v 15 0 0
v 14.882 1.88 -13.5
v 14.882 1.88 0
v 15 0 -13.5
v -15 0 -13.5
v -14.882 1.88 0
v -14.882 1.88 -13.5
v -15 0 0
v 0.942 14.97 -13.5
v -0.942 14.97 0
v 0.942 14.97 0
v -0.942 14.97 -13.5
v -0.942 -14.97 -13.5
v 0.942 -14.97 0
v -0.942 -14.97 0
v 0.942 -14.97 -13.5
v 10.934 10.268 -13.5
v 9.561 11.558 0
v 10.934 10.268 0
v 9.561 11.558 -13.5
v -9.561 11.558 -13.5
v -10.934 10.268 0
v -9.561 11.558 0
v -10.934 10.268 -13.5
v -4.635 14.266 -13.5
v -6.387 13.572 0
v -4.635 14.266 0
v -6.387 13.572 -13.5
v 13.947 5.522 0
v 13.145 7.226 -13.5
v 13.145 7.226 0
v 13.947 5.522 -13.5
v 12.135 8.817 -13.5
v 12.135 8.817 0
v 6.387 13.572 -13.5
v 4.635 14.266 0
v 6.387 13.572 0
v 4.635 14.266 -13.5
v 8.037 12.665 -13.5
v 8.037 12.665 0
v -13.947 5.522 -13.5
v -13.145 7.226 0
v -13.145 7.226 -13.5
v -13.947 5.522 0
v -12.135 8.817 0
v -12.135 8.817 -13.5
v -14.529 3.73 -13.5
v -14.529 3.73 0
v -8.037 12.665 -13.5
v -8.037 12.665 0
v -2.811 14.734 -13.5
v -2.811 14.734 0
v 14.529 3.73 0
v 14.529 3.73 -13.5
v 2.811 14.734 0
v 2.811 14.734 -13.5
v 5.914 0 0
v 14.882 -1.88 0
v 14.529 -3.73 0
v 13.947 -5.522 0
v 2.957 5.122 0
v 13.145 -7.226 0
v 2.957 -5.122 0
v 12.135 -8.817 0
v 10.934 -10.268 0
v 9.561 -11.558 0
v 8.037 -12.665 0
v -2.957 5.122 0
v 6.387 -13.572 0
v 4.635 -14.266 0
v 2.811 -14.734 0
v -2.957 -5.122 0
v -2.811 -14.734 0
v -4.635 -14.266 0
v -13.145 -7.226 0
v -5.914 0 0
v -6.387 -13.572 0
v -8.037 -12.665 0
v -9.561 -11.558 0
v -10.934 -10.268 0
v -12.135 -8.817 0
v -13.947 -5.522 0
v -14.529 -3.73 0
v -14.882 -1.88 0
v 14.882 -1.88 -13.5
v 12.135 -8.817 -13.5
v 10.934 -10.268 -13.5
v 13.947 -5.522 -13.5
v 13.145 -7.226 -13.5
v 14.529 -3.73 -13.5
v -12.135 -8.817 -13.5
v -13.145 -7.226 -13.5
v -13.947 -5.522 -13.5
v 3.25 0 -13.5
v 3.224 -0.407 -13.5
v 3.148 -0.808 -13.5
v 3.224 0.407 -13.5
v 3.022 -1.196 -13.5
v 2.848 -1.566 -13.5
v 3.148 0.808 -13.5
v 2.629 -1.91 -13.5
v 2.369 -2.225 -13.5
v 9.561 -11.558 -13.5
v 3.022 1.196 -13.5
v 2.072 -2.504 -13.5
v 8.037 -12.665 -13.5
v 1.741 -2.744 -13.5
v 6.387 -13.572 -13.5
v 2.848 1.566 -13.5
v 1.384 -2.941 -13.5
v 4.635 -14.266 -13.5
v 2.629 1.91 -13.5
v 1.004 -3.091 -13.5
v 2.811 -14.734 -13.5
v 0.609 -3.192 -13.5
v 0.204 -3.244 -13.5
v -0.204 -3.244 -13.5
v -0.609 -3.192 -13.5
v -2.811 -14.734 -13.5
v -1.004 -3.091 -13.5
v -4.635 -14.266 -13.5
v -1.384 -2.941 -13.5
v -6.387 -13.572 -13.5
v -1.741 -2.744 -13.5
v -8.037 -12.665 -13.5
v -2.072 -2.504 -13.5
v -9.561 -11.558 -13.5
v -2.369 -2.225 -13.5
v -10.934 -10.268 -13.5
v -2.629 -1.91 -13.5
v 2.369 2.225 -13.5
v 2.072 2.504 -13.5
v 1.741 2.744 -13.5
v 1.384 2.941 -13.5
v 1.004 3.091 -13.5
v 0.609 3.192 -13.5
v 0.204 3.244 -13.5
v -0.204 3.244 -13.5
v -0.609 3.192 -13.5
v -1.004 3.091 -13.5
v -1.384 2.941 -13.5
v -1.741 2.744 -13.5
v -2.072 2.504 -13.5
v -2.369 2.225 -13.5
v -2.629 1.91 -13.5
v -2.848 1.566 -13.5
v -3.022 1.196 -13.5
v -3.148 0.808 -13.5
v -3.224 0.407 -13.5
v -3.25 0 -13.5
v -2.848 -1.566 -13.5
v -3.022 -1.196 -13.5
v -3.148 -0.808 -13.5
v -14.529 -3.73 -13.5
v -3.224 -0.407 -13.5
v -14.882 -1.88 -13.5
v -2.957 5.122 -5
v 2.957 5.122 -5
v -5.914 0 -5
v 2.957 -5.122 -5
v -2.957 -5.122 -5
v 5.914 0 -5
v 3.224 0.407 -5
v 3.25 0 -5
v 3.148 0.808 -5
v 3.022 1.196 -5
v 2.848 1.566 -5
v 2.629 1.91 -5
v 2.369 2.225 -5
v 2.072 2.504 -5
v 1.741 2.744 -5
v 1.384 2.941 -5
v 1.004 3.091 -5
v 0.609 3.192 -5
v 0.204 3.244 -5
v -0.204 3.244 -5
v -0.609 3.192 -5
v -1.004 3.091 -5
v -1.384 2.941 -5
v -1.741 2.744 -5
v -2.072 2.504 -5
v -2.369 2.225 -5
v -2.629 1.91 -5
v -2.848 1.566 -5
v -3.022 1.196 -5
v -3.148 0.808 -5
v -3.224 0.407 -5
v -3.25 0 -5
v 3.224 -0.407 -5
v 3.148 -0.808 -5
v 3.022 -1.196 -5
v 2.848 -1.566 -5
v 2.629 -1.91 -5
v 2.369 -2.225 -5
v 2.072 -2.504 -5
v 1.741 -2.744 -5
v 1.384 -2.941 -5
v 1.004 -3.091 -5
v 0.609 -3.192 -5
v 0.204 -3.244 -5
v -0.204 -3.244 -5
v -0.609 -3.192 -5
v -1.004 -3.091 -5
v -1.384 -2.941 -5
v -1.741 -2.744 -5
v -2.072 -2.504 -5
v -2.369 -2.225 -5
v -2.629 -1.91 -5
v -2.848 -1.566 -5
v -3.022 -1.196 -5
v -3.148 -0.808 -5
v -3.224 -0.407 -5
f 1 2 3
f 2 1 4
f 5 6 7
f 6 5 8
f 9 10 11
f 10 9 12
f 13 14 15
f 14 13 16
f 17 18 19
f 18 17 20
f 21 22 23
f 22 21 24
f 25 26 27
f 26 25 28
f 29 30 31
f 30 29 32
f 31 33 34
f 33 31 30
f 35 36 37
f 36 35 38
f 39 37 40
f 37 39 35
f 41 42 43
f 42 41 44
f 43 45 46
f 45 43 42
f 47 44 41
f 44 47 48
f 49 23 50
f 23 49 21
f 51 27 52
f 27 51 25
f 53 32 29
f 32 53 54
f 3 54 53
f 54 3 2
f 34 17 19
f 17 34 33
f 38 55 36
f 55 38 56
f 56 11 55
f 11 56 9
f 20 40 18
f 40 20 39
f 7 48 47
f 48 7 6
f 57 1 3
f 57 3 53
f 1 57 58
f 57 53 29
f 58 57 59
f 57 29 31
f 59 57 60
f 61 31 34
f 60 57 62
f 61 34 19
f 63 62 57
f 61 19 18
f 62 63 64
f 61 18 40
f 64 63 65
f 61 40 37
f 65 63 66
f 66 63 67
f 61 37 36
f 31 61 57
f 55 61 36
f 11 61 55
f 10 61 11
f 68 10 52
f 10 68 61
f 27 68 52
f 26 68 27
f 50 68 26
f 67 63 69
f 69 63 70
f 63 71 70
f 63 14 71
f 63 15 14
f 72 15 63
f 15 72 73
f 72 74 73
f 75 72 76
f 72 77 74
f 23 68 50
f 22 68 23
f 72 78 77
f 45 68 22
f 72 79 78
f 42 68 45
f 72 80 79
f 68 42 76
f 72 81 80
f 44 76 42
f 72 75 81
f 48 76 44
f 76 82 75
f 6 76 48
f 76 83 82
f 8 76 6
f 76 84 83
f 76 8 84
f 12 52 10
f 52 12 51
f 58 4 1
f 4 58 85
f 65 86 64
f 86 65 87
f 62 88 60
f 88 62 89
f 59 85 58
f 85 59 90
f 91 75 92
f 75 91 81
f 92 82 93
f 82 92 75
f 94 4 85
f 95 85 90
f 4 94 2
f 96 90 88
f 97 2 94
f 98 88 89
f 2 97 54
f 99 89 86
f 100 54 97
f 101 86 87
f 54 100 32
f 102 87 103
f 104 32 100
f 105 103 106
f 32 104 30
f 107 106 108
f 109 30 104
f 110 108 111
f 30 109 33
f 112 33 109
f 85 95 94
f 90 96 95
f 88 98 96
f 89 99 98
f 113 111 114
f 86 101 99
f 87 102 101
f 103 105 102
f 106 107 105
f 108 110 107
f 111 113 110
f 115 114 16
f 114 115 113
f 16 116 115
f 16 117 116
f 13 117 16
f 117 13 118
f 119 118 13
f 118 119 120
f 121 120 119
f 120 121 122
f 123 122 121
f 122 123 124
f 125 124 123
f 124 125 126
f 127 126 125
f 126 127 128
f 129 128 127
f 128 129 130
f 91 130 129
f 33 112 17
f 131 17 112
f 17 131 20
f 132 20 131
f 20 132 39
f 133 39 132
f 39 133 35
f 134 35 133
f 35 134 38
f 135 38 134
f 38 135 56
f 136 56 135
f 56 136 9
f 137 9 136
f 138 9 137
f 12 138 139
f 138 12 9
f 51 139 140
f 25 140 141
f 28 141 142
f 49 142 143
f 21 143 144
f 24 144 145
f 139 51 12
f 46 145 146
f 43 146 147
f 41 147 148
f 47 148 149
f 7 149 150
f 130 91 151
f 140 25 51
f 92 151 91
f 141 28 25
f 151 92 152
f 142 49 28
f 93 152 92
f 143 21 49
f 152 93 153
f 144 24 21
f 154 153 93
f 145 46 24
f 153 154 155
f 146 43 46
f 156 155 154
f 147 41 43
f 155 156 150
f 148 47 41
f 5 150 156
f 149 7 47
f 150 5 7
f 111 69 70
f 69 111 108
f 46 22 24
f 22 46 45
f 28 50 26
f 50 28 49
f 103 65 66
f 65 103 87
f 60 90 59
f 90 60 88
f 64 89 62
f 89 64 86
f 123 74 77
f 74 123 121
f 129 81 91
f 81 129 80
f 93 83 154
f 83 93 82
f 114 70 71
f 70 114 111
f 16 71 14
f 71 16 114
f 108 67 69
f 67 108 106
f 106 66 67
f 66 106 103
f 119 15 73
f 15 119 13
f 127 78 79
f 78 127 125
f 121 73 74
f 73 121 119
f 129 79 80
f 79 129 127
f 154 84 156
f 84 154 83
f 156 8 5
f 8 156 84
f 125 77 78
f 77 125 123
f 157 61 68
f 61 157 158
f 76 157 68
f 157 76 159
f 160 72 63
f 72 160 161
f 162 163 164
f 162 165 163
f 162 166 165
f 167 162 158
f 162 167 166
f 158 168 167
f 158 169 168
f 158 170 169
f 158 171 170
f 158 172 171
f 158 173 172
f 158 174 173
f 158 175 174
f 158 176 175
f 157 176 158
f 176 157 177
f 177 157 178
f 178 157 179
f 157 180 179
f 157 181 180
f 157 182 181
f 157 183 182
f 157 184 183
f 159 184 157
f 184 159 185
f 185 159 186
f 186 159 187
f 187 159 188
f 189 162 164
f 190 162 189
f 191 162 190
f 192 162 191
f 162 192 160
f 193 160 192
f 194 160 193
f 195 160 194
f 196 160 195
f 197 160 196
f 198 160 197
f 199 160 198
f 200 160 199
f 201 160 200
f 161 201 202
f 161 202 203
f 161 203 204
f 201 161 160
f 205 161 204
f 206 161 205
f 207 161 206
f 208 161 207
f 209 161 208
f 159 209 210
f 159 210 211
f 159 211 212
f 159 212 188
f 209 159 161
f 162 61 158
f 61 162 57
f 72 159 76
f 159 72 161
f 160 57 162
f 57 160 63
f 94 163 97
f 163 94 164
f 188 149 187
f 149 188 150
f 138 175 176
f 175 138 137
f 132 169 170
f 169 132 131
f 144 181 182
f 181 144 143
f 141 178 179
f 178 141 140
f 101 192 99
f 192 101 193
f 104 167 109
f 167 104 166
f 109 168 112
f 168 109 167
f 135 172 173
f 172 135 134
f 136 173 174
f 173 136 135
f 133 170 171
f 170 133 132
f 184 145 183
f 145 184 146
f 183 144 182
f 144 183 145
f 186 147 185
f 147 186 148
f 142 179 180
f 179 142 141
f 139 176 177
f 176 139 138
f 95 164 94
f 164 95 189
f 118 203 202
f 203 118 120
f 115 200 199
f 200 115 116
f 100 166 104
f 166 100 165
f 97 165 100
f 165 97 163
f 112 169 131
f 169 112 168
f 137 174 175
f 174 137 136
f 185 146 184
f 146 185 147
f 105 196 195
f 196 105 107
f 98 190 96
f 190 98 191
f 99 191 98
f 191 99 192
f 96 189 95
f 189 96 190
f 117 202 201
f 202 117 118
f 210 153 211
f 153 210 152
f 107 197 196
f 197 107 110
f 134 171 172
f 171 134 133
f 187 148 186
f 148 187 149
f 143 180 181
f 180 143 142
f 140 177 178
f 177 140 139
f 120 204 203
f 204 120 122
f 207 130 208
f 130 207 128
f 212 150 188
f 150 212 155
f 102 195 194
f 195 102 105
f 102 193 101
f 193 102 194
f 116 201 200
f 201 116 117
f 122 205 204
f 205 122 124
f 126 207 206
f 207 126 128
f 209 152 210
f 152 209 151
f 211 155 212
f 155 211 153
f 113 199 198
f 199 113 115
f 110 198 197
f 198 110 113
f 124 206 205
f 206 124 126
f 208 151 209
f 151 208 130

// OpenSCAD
$fn = 50;


difference() {
	union() {
		translate(v = [0, 0, -13.5000000000]) {
			cylinder(h = 13.5000000000, r = 15.0000000000);
		}
		translate(v = [0, 0, -12.0000000000]) {
			cylinder(h = 12, r = 2.8750000000);
		}
	}
	union() {
		translate(v = [0, 0, 0]) {
			rotate(a = [0, 0, 0]) {
				difference() {
					union() {
						translate(v = [0, 0, -5]) {
							linear_extrude(height = 5) {
								polygon(points = [[5.9142500000, 0.0000000000], [2.9571250000, 5.1218907443], [-2.9571250000, 5.1218907443], [-5.9142500000, 0.0000000000], [-2.9571250000, -5.1218907443], [2.9571250000, -5.1218907443]]);
							}
						}
					}
					union();
				}
			}
		}
		#translate(v = [0, 0, -100.0000000000]) {
			cylinder(h = 200, r = 3.2500000000);
		}
	}
}
